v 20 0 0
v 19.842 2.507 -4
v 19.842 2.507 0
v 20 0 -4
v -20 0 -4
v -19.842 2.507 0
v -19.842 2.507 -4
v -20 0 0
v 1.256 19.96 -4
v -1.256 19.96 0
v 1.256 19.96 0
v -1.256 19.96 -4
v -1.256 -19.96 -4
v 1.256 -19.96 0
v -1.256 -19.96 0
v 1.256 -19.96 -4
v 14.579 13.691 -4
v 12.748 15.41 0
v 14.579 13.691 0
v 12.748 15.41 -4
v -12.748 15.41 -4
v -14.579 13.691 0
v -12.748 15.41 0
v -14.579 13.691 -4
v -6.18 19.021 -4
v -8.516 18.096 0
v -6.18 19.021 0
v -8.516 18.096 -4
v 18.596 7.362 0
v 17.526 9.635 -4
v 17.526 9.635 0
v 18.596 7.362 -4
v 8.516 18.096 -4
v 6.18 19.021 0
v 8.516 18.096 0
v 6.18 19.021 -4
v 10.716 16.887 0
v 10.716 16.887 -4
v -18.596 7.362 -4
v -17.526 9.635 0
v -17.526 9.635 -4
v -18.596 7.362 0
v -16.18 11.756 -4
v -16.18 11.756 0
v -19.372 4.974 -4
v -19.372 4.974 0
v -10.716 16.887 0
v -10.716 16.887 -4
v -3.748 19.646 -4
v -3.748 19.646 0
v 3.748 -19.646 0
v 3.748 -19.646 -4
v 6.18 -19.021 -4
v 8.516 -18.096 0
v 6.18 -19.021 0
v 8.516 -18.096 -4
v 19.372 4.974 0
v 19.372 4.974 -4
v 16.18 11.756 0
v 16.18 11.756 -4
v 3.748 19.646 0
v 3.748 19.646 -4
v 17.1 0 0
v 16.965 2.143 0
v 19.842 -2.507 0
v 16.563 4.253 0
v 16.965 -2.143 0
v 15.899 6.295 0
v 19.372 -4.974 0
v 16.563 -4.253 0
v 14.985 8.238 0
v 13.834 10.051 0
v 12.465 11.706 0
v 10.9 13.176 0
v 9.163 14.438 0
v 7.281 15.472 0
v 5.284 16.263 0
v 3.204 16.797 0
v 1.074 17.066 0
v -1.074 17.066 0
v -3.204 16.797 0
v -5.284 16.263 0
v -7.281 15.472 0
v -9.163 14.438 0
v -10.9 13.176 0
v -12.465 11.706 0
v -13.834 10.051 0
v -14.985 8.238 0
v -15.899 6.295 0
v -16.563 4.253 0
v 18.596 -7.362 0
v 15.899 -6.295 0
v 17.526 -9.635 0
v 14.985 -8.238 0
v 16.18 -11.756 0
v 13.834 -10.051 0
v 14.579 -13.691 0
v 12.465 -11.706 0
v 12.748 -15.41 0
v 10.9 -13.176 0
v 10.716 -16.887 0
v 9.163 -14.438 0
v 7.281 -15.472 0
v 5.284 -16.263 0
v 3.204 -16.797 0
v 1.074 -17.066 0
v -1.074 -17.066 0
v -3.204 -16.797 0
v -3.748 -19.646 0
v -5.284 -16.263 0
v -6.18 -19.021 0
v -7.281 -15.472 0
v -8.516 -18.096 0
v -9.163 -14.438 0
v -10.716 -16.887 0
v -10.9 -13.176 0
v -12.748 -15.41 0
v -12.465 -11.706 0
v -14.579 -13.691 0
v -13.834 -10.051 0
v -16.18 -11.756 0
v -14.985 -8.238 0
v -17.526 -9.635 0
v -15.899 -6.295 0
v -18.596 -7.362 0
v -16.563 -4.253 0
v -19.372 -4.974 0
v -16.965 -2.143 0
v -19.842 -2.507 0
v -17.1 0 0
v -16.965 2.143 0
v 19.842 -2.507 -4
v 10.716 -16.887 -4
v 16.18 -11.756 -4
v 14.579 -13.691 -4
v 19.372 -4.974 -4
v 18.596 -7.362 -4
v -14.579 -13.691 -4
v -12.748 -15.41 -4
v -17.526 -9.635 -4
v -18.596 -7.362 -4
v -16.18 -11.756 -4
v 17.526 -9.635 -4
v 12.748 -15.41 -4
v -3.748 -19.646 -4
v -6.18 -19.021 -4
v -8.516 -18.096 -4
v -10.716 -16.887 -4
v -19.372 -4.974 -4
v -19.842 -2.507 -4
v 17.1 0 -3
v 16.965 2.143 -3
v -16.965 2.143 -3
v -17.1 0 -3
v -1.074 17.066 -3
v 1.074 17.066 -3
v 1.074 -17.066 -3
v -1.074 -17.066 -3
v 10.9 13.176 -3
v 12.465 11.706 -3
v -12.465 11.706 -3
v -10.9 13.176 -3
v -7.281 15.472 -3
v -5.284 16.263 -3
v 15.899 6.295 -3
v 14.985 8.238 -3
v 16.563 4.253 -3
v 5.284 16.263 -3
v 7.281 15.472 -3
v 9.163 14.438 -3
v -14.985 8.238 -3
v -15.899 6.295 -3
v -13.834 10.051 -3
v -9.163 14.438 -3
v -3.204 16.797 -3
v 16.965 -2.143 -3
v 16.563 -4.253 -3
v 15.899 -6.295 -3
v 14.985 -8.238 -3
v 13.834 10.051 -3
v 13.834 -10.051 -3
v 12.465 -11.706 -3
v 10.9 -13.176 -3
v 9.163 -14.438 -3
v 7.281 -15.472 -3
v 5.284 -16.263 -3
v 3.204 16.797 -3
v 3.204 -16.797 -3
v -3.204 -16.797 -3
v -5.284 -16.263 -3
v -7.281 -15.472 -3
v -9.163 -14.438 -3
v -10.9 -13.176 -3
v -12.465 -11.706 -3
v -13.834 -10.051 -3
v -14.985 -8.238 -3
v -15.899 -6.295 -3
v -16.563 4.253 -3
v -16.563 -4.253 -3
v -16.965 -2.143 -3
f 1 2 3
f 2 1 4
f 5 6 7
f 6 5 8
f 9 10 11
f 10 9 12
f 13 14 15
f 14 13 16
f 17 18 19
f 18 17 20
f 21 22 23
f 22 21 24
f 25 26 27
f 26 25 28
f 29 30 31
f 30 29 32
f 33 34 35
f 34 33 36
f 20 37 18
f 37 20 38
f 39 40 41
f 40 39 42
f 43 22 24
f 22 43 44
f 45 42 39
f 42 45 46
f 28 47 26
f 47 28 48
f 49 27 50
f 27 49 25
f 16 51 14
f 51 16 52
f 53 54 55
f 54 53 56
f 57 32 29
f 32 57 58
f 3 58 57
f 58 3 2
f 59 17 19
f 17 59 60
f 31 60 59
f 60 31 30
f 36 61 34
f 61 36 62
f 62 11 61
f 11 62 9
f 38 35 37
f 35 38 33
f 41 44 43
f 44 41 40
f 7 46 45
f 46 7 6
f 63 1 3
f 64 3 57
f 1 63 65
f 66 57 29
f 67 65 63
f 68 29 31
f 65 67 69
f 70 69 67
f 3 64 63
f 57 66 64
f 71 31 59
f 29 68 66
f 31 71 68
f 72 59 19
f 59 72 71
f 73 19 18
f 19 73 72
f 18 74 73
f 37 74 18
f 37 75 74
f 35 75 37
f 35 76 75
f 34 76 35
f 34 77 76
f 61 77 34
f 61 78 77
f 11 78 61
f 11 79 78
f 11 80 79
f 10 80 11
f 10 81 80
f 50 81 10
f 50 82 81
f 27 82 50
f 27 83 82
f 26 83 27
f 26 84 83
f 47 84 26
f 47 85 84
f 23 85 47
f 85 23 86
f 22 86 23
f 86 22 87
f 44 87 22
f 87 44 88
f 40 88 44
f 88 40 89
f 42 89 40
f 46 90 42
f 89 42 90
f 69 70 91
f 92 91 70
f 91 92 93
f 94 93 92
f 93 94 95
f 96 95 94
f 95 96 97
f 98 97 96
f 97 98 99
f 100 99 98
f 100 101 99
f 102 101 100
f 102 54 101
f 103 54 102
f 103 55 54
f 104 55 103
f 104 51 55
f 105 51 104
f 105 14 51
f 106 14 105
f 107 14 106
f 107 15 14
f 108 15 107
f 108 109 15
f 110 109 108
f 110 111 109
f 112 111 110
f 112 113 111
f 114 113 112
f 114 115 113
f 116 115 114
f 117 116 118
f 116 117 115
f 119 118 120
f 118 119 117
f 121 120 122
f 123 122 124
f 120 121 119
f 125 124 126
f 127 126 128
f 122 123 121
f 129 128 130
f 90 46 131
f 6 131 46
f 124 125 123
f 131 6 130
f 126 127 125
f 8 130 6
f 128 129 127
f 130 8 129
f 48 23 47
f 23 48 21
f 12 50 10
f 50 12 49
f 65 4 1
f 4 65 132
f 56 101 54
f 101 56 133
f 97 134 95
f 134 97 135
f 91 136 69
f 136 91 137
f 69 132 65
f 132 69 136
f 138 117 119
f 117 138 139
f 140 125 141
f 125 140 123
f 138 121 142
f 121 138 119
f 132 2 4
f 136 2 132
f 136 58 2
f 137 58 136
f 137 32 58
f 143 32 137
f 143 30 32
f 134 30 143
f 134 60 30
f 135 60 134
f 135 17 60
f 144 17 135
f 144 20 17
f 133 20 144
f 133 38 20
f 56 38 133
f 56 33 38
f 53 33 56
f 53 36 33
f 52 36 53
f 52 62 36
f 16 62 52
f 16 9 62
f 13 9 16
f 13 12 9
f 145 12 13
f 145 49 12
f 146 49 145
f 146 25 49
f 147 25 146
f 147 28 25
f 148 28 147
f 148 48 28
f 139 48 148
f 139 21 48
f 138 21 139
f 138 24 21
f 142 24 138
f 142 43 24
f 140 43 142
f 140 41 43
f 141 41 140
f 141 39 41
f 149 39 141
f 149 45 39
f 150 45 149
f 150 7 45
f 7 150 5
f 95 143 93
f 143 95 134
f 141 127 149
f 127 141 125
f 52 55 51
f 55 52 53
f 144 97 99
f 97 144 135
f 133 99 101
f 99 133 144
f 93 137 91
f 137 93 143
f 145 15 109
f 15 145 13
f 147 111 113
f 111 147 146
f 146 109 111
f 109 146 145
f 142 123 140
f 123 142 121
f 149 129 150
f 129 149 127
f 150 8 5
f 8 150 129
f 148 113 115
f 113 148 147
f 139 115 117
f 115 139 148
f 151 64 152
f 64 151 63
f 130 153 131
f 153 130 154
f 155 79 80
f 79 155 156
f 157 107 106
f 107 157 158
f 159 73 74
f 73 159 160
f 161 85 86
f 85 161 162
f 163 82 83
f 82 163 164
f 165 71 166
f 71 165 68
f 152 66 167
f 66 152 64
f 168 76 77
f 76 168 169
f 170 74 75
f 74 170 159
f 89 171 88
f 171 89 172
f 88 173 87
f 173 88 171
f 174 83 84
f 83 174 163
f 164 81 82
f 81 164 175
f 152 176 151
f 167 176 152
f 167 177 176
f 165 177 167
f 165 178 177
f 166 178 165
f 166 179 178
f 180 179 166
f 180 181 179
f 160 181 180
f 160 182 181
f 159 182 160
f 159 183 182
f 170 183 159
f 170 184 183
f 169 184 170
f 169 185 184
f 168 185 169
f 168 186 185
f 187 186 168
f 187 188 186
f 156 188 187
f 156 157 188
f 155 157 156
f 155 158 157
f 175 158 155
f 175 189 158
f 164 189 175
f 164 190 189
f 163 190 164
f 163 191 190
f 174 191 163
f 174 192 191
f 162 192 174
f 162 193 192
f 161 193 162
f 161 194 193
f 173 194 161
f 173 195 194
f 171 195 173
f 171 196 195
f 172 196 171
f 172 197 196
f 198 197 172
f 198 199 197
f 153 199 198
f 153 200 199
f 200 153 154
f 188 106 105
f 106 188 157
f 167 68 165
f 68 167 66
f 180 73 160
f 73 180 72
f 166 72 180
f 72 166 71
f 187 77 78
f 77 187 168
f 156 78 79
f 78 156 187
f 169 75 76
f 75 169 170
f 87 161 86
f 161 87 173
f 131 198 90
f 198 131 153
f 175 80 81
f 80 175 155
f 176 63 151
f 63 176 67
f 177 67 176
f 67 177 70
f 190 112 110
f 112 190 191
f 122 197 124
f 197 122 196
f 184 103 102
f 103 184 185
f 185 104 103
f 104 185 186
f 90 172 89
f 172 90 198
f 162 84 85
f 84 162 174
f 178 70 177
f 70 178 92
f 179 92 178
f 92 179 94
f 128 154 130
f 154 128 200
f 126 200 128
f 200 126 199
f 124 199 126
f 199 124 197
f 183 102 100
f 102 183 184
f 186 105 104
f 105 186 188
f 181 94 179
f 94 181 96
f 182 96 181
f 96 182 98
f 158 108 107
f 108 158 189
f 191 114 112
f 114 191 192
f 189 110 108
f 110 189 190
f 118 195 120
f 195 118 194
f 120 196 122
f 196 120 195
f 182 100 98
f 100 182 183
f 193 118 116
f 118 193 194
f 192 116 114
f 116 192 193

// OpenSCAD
$fn = 50;


difference() {
	union() {
		translate(v = [0, 0, -4.0000000000]) {
			cylinder(h = 4, r = 20.0000000000);
		}
	}
	union() {
		#translate(v = [0, 0, -3.0000000000]) {
			cylinder(h = 3, r = 17.1000000000);
		}
	}
}
